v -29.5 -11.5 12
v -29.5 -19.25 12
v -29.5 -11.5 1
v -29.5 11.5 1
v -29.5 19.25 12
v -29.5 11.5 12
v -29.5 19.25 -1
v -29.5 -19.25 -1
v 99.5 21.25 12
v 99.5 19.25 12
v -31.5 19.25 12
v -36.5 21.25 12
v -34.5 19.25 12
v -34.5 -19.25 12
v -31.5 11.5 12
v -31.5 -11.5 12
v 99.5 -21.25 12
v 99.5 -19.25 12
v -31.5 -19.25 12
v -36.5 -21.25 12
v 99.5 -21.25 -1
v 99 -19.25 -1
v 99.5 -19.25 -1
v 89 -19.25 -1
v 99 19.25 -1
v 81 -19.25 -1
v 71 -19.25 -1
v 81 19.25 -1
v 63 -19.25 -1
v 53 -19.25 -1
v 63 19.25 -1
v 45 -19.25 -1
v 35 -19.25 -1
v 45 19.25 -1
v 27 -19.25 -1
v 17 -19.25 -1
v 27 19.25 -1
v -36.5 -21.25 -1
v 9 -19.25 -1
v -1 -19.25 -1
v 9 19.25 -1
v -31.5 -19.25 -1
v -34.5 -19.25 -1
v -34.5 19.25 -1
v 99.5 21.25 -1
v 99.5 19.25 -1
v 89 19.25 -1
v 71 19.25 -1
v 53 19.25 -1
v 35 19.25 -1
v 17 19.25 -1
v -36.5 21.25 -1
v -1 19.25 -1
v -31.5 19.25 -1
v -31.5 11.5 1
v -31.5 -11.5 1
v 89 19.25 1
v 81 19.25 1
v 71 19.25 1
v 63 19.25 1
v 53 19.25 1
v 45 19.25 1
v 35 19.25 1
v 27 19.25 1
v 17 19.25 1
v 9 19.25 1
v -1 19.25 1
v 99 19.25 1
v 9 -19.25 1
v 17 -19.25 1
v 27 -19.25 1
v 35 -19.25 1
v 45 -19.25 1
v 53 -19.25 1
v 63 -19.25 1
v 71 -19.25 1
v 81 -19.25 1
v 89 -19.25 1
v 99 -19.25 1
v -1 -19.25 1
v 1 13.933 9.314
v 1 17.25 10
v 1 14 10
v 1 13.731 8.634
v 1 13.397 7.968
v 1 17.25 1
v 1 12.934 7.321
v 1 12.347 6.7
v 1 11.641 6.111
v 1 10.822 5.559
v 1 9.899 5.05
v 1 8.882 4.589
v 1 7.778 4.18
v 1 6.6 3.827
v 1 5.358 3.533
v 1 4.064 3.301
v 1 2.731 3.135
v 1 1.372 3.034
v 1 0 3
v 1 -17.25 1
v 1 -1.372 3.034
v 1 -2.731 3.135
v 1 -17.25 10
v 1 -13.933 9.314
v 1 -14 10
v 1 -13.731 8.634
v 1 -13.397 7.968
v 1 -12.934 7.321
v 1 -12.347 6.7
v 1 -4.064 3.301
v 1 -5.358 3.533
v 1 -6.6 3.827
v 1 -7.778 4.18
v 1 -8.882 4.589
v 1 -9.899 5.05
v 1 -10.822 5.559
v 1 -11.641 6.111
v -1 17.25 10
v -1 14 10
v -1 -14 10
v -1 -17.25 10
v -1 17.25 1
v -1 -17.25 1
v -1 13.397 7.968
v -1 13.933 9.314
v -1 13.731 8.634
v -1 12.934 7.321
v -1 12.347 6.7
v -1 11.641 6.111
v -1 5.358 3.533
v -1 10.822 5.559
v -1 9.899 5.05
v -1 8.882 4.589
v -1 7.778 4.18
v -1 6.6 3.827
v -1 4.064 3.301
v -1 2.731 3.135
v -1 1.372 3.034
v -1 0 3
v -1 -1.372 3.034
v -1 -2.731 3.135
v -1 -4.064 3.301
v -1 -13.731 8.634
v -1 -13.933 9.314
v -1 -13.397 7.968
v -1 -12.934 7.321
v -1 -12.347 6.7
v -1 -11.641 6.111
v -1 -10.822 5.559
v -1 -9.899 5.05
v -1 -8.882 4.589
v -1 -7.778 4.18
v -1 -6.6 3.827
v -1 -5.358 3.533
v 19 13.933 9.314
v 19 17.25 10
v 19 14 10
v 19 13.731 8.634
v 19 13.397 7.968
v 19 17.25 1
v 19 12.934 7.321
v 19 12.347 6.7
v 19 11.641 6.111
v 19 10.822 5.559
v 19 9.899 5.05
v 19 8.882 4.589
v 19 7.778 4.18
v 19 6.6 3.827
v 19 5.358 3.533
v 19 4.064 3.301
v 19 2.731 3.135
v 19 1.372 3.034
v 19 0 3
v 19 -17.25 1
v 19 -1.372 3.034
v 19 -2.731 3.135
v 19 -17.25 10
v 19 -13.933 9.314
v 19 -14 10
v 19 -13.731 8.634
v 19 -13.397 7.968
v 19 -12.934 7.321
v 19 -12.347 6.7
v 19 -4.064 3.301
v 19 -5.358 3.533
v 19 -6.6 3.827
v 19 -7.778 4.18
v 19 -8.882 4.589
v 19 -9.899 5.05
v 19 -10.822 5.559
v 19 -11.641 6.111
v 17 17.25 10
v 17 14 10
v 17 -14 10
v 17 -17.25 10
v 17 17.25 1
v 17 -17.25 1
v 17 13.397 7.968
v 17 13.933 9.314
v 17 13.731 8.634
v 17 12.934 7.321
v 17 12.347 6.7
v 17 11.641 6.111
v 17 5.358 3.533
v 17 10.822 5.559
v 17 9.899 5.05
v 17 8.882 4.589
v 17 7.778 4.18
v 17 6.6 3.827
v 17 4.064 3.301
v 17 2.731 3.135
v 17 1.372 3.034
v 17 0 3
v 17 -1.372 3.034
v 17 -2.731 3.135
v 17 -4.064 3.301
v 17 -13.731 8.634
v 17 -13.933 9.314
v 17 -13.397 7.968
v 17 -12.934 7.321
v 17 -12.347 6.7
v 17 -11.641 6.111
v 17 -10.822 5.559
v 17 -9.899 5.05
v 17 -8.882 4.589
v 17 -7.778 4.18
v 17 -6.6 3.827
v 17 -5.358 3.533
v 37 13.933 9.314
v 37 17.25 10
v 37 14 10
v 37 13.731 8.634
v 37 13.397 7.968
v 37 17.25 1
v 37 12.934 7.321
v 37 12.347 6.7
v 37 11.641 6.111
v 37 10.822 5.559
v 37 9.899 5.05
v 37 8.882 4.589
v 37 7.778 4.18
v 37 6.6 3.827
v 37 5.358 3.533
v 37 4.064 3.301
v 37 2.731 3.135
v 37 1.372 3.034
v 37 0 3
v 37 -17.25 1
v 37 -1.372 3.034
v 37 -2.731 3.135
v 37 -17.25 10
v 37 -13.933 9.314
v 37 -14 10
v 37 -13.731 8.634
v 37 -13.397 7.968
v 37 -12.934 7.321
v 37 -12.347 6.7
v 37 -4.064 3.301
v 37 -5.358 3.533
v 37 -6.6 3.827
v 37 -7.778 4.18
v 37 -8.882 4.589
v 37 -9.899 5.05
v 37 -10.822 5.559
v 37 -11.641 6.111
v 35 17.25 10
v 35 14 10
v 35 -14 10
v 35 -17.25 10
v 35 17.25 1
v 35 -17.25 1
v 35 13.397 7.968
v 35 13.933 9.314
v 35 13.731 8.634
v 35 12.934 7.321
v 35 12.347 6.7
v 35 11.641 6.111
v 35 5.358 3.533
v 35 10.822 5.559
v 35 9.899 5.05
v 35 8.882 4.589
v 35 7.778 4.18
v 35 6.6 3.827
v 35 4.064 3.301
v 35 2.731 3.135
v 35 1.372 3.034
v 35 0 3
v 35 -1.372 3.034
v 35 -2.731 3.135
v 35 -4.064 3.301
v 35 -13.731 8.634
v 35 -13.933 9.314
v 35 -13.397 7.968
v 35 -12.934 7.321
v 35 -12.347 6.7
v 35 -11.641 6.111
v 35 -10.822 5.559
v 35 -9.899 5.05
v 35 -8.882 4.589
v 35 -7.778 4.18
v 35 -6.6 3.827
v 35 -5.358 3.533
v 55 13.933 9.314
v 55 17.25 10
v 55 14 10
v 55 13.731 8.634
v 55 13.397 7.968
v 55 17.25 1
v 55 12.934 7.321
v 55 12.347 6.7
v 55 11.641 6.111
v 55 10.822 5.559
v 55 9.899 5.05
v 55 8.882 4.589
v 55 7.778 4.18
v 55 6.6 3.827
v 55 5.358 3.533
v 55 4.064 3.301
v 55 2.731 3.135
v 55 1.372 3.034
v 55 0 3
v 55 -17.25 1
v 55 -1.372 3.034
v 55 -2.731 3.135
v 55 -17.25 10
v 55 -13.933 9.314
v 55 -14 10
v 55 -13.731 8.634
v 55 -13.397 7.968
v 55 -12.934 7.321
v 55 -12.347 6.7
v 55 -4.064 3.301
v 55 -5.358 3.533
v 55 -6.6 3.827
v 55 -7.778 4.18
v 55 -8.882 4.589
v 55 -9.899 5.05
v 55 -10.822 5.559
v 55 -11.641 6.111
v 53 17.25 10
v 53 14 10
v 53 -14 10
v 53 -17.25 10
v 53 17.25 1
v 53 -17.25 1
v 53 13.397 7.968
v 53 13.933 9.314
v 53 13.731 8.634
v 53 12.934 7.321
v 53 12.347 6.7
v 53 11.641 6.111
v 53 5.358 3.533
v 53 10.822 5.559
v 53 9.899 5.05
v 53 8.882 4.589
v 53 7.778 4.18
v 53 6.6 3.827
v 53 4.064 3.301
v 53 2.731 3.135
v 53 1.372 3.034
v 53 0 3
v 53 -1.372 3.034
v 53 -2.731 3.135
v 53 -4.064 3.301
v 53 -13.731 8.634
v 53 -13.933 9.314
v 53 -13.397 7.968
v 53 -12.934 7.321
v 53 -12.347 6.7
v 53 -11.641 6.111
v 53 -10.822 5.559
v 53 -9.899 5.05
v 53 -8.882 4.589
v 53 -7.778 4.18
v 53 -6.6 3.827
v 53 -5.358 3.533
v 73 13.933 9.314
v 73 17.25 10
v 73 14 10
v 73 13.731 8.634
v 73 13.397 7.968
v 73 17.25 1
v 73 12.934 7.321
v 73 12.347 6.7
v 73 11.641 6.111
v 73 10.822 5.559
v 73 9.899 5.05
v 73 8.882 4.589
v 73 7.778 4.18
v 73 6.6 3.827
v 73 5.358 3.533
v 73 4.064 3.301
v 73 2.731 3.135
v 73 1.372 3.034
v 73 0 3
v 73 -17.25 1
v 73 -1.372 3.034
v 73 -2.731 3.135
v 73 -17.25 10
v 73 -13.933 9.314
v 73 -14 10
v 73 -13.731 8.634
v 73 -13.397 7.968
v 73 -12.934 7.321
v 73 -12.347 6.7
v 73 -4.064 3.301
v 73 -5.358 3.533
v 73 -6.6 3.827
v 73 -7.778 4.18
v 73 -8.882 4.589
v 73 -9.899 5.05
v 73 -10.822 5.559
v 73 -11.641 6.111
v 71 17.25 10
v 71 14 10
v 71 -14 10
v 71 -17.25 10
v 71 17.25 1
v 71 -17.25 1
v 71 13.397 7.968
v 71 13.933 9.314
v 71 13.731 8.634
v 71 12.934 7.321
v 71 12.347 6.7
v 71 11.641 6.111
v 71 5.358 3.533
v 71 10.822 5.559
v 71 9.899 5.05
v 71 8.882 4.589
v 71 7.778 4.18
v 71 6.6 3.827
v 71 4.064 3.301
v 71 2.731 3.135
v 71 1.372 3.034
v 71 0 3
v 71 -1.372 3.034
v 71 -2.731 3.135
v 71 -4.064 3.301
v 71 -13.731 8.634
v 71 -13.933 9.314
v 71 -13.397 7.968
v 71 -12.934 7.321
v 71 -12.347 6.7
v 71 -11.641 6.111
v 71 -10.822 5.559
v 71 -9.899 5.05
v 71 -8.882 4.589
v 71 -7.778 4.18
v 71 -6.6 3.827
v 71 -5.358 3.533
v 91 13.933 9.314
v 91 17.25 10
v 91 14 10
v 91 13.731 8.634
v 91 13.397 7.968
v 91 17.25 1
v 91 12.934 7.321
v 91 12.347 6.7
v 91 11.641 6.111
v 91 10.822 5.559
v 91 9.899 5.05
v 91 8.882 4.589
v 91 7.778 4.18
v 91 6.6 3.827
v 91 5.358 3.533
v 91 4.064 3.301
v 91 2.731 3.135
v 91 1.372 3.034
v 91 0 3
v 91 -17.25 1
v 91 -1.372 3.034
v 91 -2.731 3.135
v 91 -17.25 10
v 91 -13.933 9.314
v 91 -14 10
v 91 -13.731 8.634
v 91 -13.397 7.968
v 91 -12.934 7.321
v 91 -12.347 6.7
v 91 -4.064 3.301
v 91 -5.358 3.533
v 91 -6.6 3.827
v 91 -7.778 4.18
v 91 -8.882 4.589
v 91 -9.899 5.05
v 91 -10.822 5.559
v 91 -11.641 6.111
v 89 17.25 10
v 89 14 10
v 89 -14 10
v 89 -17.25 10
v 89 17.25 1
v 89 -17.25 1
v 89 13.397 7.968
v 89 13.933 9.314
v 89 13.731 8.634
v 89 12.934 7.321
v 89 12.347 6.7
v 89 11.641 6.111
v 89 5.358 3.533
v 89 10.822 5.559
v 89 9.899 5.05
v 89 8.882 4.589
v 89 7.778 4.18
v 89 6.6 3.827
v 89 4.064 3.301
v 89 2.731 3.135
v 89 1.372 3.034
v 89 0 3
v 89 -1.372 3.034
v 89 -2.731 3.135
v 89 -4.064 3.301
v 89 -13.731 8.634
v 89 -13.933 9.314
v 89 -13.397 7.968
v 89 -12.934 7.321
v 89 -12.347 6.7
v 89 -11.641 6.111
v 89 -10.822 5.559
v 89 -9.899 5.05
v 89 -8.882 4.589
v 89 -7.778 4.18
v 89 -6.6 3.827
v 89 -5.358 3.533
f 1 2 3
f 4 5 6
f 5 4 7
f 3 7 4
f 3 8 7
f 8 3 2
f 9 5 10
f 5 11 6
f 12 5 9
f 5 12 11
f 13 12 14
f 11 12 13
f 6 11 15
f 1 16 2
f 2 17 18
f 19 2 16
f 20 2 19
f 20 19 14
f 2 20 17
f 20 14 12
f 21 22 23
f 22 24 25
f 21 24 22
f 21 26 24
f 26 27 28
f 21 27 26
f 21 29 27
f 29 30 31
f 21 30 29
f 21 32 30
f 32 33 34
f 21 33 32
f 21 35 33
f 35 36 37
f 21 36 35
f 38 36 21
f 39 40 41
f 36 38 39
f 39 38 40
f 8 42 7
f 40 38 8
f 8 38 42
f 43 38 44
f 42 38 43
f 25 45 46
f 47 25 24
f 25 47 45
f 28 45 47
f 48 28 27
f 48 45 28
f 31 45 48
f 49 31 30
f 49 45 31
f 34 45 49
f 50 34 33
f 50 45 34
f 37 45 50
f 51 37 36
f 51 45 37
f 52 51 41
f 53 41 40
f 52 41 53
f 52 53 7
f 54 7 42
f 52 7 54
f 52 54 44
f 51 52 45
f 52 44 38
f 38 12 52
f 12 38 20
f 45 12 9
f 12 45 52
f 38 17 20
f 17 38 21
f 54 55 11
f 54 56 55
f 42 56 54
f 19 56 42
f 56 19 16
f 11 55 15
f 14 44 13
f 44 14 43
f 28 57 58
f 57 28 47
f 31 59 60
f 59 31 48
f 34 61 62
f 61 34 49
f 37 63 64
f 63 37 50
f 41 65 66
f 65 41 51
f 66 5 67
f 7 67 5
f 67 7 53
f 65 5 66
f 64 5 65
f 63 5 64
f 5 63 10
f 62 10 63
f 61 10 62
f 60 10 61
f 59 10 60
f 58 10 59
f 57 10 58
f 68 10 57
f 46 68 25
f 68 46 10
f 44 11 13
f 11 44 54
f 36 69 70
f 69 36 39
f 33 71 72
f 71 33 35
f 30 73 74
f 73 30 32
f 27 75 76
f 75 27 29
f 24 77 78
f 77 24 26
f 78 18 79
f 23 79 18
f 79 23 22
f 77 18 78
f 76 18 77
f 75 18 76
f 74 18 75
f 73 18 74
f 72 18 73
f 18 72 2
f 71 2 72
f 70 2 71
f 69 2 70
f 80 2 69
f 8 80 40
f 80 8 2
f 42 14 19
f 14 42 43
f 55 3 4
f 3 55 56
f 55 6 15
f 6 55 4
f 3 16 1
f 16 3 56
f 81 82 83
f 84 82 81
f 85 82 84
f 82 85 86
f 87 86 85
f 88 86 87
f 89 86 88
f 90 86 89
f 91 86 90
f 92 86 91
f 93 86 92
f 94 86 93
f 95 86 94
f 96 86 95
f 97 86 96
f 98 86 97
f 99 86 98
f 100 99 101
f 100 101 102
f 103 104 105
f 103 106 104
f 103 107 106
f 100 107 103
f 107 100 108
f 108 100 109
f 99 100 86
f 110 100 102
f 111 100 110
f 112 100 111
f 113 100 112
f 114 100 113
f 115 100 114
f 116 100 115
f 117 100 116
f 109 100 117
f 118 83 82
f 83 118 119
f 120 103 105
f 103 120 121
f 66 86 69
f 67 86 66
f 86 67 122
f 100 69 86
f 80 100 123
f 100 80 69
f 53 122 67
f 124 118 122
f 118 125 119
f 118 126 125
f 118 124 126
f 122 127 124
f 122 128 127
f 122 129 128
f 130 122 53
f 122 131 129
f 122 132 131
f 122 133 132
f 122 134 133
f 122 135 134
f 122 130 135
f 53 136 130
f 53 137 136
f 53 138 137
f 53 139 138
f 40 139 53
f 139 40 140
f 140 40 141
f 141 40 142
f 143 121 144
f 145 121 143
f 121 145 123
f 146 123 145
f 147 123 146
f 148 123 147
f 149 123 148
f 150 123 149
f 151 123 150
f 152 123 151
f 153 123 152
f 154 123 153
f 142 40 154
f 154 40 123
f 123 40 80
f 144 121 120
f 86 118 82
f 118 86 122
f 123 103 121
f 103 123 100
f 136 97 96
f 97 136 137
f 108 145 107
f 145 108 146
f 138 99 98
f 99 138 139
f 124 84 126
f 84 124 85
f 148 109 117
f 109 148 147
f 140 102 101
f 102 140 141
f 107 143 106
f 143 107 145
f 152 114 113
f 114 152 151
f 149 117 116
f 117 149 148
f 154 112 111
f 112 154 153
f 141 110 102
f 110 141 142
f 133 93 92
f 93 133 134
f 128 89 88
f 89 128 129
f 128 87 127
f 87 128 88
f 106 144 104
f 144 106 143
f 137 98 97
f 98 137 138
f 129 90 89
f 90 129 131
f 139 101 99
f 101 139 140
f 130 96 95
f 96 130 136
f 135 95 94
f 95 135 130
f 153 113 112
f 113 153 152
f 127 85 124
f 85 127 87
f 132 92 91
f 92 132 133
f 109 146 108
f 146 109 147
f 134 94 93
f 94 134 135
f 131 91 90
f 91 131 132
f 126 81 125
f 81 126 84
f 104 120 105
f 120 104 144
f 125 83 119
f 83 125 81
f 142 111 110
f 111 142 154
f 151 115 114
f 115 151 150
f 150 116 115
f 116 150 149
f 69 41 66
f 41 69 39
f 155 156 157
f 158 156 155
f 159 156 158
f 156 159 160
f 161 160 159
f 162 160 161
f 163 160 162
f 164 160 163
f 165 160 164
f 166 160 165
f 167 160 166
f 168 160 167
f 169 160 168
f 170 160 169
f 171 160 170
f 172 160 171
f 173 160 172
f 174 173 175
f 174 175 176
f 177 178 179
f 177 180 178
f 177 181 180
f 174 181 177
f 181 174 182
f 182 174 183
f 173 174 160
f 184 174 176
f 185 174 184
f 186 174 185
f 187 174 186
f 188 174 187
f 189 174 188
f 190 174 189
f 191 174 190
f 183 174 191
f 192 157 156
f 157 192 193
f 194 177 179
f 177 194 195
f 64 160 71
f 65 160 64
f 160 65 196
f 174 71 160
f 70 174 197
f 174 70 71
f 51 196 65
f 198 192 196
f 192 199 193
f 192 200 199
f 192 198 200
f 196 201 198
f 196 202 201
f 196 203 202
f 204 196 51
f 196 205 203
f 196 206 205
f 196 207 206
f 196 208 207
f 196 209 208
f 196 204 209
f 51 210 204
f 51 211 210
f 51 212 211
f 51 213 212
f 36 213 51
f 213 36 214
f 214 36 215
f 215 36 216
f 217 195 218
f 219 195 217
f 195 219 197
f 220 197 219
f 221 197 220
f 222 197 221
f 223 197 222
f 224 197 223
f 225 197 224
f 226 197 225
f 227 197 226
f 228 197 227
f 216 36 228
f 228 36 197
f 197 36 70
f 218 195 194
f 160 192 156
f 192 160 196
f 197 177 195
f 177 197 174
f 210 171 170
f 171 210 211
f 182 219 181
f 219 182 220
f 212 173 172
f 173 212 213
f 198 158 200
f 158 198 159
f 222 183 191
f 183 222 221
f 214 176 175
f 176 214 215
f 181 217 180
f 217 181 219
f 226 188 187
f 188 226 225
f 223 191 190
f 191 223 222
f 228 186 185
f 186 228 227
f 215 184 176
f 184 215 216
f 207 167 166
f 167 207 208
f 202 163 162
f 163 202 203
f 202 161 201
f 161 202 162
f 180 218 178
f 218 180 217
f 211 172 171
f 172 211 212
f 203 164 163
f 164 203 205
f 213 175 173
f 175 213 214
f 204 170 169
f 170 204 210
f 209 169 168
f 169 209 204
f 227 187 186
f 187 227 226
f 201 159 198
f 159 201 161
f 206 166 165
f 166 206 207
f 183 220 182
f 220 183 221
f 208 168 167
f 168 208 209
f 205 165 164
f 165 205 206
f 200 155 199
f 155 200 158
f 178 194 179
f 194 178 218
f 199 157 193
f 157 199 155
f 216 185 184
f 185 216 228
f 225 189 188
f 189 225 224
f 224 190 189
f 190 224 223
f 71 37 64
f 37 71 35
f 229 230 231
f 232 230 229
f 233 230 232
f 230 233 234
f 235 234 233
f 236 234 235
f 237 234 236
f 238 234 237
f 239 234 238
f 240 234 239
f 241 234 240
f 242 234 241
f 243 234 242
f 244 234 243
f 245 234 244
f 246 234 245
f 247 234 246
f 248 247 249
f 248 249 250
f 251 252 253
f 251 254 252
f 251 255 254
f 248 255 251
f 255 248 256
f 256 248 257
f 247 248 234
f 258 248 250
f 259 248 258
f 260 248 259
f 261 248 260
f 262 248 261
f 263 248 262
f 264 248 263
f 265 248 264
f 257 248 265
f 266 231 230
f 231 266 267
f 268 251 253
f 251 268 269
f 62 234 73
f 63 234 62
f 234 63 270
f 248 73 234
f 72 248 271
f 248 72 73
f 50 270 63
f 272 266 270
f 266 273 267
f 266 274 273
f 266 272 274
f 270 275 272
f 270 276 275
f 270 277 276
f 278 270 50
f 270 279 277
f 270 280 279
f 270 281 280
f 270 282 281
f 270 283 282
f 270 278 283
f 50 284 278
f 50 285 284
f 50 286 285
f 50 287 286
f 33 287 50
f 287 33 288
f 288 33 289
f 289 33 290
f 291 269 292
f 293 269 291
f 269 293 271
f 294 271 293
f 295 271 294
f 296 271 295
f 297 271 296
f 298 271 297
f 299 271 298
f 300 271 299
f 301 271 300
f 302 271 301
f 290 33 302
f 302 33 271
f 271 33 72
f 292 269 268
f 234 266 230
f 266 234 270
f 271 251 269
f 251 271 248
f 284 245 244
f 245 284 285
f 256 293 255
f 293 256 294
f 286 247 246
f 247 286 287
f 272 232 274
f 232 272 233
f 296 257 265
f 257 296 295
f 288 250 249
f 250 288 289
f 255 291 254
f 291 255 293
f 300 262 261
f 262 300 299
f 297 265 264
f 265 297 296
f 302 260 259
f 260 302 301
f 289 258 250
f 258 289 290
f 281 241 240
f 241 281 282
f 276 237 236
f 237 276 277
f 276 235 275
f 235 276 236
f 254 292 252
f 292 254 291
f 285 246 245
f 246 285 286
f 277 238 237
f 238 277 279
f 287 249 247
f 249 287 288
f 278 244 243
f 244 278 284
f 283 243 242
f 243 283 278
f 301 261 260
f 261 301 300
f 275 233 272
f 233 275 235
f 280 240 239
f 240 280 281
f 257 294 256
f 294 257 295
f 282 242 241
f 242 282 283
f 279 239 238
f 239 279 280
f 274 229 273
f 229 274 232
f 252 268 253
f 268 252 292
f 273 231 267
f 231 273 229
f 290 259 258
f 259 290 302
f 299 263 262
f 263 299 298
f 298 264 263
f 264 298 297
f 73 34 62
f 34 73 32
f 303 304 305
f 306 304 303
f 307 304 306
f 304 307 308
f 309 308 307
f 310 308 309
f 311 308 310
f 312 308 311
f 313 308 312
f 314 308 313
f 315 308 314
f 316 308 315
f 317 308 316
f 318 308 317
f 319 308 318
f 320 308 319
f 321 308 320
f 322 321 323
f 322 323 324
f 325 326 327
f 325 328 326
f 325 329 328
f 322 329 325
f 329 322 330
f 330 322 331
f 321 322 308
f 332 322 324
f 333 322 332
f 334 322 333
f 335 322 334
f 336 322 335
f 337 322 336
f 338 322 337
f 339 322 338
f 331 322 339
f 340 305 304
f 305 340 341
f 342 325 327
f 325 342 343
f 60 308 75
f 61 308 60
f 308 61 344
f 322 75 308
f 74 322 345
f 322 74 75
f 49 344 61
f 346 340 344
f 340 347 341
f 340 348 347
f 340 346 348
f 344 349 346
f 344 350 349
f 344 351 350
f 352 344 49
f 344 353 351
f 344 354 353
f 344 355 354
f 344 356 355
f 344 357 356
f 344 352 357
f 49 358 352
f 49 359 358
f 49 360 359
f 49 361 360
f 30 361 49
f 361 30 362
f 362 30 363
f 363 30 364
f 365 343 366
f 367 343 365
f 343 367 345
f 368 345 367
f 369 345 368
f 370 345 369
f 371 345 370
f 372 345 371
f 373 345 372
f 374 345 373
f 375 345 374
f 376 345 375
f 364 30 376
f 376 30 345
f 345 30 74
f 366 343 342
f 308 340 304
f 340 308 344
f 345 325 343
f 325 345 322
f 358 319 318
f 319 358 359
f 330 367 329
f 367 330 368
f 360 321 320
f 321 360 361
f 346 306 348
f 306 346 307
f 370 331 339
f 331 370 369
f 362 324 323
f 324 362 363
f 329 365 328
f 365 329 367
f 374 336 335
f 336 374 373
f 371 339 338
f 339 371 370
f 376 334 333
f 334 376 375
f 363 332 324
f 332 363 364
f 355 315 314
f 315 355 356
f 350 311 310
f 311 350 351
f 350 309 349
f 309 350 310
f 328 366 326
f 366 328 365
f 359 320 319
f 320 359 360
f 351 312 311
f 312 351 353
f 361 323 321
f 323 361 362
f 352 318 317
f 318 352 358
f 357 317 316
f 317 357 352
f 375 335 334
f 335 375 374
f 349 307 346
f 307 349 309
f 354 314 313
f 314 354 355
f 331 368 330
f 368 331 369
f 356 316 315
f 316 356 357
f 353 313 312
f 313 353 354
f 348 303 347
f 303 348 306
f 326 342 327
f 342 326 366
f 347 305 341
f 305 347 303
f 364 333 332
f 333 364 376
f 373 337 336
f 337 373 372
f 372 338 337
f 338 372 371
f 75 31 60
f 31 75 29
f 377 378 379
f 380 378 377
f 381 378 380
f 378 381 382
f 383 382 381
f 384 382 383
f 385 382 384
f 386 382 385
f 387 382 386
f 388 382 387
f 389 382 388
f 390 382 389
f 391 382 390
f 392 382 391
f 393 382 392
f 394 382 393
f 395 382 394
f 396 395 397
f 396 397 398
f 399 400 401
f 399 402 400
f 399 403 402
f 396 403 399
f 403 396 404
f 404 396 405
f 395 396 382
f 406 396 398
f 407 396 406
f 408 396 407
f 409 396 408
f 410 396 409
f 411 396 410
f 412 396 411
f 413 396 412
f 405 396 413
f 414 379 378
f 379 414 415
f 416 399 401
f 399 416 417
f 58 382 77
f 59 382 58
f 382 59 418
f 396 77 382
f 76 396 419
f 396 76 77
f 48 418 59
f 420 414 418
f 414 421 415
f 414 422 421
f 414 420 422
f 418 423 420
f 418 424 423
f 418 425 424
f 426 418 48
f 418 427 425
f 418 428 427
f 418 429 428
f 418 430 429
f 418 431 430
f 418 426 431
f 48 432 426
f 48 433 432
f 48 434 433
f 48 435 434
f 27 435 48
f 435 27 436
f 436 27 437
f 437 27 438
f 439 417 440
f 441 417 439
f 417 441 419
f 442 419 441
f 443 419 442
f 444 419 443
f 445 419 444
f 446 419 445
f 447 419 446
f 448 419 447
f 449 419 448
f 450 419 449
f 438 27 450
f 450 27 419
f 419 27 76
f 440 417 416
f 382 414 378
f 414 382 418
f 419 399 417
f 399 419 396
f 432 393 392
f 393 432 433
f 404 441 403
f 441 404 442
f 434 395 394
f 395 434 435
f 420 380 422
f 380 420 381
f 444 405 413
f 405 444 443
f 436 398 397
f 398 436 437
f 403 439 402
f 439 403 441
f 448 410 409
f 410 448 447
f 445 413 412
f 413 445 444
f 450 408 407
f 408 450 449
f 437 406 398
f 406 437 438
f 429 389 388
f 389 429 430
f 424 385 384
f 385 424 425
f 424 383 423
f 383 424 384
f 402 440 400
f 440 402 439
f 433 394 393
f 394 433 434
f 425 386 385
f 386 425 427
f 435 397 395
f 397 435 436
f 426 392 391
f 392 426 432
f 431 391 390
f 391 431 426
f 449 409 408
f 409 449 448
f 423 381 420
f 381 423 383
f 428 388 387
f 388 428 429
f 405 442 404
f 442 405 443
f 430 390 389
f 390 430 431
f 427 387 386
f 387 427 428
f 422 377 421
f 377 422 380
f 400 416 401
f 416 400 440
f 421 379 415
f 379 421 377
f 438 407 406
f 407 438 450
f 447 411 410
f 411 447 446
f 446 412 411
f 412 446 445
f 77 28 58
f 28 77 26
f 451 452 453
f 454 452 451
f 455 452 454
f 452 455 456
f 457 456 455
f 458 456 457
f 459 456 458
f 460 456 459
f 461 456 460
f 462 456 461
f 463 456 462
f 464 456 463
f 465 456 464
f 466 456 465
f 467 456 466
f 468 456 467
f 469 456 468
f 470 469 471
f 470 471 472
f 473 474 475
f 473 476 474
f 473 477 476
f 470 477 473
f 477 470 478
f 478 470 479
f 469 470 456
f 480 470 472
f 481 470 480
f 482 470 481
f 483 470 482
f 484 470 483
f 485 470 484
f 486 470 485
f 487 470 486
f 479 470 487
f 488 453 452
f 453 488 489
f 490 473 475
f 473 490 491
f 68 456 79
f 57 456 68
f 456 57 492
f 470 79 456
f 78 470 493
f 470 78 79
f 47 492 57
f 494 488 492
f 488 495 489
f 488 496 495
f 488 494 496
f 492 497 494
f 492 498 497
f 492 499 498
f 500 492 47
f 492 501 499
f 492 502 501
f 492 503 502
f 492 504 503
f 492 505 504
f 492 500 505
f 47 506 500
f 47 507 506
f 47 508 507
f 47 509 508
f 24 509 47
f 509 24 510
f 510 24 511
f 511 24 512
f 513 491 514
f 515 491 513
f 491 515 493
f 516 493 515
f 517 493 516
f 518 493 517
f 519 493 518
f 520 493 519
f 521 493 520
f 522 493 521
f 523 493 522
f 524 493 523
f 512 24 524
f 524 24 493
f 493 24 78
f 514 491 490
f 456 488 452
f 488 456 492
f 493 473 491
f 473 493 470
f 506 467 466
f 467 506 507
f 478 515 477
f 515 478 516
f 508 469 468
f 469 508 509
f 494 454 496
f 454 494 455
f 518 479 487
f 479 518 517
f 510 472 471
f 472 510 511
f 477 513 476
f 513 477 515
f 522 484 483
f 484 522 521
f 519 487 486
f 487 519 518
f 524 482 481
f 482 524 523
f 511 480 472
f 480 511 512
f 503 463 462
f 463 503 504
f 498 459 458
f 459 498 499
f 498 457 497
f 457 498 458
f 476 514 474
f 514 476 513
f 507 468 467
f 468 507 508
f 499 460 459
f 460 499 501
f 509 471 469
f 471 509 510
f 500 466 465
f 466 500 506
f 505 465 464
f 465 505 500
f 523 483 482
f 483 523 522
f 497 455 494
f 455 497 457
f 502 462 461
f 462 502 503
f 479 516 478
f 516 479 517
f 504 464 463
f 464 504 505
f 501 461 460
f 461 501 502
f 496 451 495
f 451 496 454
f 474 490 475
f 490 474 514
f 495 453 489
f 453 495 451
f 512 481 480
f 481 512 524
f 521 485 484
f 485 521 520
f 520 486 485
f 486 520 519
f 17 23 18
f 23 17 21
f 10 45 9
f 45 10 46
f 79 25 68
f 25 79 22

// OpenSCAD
$fn= $preview ? 32 : 64;

width = 10;
space_lateral = 2;
space = 18;
slots = 6;

pin_x = 2;
pin_y = 34.5;
pin_z = 9;

side_x = width + space/2;
side_y = 2;
side_z = pin_z + 4;

base_x = width;
base_y = pin_y + space_lateral*2 + side_y*2;
base_z = 2;

for ( i = [0 : slots - 1] ){
	translate([i*space, 0, 0]) {
		translate([base_x/2-pin_x/2, 0, 0]) cube([base_x, base_y, base_z], center=true);
		translate([0, 0, pin_z/2 + base_z/2]) {
			difference() {
				cube([pin_x, pin_y, pin_z], center=true);
				translate([0,0,pin_z/2]) rotate([0,90,0]) scale([0.5,1]) cylinder(width, 14, 14, center=true);
			}
			for (i = [-1, 1]) {
				translate([0, (pin_y/2 + side_y/2 + space_lateral) * i, 0]) cube([side_x, side_y, side_z], center=true);
			}
		}
	}
}


blade_x = 7;
blade_y = base_y;
blade_z = side_z;
distance = 20;

translate([-9.5-blade_x/2-distance,0,pin_z/2+base_z/2]) {
	difference() {
		cube([blade_x, blade_y, blade_z], center=true);
		cube([blade_x-(side_y*2), blade_y-(side_y*2), blade_z], center=true);
		translate([2,0,1]) cube([blade_x, 23, blade_z - base_z], center=true);
	}
	for (i = [-1, 1]) {
		translate([distance-8, (pin_y/2 + side_y/2 + space_lateral) * i, 0]) cube([side_x+12, side_y, side_z], center=true);
	}
}
